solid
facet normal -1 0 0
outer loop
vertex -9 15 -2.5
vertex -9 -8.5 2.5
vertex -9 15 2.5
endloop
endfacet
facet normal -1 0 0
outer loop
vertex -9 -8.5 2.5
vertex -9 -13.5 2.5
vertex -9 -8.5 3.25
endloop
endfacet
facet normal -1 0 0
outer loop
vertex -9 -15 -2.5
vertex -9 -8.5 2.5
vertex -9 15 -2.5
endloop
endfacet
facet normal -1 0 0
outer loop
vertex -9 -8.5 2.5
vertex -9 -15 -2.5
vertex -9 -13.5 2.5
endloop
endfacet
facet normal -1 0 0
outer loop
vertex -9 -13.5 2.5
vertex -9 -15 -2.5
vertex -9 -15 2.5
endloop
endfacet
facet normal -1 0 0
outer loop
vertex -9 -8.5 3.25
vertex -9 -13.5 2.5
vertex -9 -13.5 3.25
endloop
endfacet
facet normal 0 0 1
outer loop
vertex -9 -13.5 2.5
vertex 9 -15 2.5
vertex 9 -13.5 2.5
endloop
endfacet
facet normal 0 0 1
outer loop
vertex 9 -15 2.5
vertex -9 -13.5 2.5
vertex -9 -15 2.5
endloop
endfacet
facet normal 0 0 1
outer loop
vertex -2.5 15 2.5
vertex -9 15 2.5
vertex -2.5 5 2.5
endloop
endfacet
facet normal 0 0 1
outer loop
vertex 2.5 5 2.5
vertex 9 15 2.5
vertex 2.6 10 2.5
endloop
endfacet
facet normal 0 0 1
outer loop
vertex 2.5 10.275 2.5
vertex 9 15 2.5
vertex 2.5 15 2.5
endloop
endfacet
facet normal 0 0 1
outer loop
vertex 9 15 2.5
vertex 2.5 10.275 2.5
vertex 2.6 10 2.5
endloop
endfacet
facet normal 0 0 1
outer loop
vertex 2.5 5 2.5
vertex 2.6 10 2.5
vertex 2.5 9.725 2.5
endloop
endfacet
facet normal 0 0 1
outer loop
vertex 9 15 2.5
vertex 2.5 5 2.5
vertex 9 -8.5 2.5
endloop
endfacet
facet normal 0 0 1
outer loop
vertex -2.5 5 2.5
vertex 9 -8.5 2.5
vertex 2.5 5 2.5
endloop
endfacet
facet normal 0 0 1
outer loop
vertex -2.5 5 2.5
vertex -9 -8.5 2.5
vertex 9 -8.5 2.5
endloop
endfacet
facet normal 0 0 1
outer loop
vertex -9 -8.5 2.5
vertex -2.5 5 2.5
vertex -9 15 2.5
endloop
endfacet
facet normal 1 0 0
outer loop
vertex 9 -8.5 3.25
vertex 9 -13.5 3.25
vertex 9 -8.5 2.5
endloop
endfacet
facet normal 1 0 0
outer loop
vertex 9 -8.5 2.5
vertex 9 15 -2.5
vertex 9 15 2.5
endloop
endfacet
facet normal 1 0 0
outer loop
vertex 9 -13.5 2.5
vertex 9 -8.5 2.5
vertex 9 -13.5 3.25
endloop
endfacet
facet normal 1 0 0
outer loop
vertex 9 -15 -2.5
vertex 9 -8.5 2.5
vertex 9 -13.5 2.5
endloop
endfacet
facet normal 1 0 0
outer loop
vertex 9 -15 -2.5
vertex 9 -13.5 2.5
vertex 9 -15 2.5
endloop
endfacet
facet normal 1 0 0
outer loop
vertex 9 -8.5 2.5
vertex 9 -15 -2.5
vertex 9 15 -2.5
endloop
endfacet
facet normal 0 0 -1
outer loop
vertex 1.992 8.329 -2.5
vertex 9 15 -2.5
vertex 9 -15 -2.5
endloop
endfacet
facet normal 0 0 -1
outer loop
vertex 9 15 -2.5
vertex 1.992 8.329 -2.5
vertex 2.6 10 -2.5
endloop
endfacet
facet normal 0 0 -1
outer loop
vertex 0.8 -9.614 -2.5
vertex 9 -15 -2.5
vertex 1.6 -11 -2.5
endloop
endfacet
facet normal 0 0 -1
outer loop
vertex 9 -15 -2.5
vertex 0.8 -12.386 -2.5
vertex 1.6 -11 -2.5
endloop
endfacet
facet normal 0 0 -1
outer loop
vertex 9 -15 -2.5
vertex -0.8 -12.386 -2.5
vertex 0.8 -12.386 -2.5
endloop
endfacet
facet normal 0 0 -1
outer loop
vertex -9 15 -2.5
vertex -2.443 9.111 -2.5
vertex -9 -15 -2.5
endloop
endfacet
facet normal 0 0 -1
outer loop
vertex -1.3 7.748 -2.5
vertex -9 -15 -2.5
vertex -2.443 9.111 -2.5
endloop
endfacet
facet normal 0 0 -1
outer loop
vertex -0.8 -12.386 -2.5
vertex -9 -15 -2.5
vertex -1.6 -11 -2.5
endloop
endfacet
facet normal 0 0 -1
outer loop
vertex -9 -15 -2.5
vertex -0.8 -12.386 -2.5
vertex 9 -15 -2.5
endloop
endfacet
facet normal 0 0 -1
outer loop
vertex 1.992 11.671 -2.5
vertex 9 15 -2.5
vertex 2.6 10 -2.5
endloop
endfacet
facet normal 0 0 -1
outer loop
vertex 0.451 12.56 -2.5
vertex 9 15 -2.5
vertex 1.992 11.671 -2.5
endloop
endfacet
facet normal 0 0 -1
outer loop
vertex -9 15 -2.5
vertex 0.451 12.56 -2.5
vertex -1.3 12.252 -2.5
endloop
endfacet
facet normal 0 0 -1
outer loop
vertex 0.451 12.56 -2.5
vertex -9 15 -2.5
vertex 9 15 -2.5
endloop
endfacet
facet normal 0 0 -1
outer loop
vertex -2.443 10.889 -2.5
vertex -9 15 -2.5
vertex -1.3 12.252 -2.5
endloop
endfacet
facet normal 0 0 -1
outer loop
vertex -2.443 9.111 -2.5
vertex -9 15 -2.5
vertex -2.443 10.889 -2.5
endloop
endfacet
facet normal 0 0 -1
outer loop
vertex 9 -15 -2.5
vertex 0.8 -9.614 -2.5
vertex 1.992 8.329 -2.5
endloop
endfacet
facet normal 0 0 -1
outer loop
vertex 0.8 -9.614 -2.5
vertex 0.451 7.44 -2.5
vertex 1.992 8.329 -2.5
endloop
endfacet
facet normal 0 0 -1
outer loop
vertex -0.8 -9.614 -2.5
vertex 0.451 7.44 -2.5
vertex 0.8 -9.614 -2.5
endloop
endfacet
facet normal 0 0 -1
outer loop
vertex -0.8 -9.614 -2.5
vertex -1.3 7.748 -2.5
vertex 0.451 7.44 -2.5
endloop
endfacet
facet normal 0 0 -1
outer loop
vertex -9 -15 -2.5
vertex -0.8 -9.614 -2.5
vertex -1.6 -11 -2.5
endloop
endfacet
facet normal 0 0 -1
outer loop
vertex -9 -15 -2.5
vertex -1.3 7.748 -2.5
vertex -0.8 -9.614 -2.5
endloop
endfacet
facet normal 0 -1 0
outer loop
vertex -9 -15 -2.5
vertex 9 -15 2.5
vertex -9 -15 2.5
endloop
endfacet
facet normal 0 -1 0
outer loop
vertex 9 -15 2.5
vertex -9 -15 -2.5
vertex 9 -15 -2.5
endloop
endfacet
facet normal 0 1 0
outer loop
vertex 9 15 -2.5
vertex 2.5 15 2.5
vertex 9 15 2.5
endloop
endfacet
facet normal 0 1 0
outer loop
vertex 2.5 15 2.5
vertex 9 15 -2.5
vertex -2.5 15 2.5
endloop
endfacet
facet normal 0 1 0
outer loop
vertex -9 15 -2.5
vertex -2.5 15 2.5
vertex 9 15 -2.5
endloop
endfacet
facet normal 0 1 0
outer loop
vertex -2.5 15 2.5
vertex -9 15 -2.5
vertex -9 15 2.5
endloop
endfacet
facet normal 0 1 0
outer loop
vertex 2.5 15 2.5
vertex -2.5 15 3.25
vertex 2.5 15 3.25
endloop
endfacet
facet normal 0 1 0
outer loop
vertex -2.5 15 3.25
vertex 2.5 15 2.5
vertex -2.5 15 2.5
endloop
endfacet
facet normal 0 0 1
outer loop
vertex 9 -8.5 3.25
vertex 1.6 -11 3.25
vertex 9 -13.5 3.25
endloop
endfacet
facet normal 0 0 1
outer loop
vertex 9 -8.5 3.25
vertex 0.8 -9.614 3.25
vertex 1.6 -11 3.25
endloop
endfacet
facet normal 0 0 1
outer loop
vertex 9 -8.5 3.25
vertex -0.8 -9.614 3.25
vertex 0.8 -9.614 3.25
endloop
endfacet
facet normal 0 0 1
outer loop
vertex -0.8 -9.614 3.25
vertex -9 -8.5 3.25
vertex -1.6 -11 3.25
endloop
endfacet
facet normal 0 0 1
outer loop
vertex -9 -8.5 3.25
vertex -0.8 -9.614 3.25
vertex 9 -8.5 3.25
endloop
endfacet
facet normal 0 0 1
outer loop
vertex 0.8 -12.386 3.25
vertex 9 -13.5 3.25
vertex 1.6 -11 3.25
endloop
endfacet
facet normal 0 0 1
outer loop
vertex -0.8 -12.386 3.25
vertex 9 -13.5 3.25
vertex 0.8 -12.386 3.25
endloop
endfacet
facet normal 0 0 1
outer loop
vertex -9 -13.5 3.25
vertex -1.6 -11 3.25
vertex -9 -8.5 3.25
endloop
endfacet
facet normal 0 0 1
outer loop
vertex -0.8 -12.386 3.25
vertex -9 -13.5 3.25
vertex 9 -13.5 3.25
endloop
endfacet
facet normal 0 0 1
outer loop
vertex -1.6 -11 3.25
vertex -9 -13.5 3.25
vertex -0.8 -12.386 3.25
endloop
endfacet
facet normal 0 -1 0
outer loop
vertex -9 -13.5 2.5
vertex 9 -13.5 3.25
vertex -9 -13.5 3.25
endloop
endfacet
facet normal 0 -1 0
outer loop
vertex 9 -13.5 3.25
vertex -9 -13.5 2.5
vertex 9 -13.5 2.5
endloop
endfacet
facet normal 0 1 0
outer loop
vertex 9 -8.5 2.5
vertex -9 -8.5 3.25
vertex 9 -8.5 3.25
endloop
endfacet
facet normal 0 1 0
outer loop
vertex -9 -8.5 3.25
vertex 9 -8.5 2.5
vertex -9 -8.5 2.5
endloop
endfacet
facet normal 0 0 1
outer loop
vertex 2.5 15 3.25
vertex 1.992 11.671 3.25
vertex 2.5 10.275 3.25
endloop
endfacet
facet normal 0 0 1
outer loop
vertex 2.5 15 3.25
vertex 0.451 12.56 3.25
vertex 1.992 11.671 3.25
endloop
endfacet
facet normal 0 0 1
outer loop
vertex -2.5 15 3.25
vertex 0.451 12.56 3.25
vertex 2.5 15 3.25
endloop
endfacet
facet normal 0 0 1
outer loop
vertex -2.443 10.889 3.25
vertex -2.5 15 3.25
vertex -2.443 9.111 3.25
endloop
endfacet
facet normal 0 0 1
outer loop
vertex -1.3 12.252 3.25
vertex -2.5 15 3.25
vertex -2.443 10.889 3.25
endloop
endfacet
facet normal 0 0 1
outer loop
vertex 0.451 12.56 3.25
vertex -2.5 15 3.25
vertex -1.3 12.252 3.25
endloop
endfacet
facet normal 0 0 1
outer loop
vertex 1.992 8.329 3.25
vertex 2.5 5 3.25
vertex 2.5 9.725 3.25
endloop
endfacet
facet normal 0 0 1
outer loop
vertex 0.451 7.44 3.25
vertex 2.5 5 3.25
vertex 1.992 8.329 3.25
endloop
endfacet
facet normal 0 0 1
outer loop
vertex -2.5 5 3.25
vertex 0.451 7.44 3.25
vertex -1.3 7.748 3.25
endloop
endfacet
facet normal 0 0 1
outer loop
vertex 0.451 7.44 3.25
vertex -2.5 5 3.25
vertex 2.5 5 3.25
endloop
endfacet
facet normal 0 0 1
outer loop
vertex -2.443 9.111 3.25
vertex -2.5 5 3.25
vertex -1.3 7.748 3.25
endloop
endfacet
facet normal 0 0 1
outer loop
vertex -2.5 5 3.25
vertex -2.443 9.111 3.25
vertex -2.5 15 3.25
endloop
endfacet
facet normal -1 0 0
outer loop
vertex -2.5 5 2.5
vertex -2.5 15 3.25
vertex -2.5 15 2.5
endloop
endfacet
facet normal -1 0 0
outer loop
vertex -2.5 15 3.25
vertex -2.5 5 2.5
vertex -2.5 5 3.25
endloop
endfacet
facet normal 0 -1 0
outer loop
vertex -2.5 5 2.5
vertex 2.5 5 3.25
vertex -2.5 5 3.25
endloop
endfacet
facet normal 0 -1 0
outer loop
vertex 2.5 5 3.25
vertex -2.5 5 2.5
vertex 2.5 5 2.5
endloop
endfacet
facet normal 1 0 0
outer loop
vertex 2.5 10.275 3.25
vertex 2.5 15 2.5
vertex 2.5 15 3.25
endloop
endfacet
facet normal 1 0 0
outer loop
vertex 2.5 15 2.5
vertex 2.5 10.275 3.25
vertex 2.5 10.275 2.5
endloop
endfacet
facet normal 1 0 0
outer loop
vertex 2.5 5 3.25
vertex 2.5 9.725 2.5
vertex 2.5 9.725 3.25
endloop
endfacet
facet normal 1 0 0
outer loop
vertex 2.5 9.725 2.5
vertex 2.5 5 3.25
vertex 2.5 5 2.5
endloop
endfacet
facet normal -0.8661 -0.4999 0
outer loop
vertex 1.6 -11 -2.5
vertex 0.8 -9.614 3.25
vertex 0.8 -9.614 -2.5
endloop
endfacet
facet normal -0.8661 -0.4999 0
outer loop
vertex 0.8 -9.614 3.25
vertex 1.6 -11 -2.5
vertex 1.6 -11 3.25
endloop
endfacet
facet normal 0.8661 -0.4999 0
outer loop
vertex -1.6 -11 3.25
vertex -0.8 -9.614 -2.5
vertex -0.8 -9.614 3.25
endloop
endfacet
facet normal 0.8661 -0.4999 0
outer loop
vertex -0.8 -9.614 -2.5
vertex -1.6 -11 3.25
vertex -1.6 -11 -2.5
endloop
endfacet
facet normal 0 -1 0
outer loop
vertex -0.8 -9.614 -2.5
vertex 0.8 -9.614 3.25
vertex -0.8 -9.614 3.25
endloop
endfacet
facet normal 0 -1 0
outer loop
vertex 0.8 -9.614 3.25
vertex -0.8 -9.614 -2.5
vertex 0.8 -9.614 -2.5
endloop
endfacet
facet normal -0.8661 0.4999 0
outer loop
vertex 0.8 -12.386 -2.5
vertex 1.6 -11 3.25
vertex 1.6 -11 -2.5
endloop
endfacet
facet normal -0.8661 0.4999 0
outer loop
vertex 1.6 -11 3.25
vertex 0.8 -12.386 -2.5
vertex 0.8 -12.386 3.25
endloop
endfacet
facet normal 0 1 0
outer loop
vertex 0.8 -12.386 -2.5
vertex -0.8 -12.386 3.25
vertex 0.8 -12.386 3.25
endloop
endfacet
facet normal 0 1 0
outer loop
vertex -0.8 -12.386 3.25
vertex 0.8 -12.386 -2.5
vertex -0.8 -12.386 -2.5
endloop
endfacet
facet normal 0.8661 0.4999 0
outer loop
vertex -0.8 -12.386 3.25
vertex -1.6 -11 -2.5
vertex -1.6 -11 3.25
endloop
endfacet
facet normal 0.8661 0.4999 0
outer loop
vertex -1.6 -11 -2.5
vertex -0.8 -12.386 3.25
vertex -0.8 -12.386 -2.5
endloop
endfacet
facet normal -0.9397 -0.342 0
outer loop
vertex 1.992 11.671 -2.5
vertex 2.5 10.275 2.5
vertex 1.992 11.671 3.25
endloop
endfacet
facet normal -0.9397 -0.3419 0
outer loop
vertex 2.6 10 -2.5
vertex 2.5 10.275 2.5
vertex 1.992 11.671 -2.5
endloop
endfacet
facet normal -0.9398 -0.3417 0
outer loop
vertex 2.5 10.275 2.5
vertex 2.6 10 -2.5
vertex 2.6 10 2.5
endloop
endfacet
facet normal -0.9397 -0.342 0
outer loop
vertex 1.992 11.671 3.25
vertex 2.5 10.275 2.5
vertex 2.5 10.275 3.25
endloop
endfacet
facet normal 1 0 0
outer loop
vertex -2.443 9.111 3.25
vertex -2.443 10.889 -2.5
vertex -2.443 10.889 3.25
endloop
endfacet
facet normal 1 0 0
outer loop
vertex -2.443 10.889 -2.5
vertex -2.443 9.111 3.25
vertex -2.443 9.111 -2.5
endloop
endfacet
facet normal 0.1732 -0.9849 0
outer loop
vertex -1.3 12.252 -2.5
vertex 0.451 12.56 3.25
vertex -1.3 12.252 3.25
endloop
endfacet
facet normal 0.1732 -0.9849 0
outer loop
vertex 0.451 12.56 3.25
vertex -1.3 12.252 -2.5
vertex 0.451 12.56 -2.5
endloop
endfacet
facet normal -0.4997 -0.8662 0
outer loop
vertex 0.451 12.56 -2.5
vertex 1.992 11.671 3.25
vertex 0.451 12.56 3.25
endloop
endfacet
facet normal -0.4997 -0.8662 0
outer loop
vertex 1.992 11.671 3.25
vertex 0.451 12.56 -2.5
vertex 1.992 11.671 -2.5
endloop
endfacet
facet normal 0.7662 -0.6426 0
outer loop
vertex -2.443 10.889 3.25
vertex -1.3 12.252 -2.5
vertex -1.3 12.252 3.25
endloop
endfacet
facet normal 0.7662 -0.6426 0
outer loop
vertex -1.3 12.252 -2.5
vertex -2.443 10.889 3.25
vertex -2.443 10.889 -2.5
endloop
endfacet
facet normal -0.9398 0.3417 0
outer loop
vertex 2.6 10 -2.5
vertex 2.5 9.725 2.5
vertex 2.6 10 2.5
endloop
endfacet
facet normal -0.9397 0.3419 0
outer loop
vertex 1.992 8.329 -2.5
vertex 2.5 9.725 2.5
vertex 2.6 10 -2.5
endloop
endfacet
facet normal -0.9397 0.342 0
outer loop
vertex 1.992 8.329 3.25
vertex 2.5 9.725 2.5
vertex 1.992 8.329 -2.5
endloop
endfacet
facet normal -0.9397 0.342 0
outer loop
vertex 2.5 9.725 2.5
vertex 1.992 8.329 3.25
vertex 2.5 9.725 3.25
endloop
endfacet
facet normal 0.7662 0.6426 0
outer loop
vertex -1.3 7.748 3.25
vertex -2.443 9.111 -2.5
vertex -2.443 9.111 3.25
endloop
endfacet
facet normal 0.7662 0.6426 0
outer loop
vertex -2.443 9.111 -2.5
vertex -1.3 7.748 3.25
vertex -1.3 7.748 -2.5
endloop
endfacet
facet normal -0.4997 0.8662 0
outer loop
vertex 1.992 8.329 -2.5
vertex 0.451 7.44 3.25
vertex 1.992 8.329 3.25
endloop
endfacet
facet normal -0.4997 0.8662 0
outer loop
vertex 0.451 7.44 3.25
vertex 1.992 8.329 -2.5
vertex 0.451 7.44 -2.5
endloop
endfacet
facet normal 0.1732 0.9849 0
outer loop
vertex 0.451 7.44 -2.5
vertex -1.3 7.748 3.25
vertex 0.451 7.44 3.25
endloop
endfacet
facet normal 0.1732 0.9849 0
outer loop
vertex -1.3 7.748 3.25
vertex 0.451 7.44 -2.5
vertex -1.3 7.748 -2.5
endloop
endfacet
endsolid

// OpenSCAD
//Connector Z_axis center

difference() {
    start();
        translate([0, -11, -5])
        cylinder (h=10, r=1.6);
    translate([0, 10, -5])
    cylinder (h=10, r=2.6);
}
module start() {
    cube([18, 30, 5], center = true);
        translate([0, -11, 2.5])
        cube([18, 5, 1.5], center=true);
        translate([0, 10, 2.5])
        rotate([0, 0, 90])
        cube([10, 5, 1.5], center=true);
    }
